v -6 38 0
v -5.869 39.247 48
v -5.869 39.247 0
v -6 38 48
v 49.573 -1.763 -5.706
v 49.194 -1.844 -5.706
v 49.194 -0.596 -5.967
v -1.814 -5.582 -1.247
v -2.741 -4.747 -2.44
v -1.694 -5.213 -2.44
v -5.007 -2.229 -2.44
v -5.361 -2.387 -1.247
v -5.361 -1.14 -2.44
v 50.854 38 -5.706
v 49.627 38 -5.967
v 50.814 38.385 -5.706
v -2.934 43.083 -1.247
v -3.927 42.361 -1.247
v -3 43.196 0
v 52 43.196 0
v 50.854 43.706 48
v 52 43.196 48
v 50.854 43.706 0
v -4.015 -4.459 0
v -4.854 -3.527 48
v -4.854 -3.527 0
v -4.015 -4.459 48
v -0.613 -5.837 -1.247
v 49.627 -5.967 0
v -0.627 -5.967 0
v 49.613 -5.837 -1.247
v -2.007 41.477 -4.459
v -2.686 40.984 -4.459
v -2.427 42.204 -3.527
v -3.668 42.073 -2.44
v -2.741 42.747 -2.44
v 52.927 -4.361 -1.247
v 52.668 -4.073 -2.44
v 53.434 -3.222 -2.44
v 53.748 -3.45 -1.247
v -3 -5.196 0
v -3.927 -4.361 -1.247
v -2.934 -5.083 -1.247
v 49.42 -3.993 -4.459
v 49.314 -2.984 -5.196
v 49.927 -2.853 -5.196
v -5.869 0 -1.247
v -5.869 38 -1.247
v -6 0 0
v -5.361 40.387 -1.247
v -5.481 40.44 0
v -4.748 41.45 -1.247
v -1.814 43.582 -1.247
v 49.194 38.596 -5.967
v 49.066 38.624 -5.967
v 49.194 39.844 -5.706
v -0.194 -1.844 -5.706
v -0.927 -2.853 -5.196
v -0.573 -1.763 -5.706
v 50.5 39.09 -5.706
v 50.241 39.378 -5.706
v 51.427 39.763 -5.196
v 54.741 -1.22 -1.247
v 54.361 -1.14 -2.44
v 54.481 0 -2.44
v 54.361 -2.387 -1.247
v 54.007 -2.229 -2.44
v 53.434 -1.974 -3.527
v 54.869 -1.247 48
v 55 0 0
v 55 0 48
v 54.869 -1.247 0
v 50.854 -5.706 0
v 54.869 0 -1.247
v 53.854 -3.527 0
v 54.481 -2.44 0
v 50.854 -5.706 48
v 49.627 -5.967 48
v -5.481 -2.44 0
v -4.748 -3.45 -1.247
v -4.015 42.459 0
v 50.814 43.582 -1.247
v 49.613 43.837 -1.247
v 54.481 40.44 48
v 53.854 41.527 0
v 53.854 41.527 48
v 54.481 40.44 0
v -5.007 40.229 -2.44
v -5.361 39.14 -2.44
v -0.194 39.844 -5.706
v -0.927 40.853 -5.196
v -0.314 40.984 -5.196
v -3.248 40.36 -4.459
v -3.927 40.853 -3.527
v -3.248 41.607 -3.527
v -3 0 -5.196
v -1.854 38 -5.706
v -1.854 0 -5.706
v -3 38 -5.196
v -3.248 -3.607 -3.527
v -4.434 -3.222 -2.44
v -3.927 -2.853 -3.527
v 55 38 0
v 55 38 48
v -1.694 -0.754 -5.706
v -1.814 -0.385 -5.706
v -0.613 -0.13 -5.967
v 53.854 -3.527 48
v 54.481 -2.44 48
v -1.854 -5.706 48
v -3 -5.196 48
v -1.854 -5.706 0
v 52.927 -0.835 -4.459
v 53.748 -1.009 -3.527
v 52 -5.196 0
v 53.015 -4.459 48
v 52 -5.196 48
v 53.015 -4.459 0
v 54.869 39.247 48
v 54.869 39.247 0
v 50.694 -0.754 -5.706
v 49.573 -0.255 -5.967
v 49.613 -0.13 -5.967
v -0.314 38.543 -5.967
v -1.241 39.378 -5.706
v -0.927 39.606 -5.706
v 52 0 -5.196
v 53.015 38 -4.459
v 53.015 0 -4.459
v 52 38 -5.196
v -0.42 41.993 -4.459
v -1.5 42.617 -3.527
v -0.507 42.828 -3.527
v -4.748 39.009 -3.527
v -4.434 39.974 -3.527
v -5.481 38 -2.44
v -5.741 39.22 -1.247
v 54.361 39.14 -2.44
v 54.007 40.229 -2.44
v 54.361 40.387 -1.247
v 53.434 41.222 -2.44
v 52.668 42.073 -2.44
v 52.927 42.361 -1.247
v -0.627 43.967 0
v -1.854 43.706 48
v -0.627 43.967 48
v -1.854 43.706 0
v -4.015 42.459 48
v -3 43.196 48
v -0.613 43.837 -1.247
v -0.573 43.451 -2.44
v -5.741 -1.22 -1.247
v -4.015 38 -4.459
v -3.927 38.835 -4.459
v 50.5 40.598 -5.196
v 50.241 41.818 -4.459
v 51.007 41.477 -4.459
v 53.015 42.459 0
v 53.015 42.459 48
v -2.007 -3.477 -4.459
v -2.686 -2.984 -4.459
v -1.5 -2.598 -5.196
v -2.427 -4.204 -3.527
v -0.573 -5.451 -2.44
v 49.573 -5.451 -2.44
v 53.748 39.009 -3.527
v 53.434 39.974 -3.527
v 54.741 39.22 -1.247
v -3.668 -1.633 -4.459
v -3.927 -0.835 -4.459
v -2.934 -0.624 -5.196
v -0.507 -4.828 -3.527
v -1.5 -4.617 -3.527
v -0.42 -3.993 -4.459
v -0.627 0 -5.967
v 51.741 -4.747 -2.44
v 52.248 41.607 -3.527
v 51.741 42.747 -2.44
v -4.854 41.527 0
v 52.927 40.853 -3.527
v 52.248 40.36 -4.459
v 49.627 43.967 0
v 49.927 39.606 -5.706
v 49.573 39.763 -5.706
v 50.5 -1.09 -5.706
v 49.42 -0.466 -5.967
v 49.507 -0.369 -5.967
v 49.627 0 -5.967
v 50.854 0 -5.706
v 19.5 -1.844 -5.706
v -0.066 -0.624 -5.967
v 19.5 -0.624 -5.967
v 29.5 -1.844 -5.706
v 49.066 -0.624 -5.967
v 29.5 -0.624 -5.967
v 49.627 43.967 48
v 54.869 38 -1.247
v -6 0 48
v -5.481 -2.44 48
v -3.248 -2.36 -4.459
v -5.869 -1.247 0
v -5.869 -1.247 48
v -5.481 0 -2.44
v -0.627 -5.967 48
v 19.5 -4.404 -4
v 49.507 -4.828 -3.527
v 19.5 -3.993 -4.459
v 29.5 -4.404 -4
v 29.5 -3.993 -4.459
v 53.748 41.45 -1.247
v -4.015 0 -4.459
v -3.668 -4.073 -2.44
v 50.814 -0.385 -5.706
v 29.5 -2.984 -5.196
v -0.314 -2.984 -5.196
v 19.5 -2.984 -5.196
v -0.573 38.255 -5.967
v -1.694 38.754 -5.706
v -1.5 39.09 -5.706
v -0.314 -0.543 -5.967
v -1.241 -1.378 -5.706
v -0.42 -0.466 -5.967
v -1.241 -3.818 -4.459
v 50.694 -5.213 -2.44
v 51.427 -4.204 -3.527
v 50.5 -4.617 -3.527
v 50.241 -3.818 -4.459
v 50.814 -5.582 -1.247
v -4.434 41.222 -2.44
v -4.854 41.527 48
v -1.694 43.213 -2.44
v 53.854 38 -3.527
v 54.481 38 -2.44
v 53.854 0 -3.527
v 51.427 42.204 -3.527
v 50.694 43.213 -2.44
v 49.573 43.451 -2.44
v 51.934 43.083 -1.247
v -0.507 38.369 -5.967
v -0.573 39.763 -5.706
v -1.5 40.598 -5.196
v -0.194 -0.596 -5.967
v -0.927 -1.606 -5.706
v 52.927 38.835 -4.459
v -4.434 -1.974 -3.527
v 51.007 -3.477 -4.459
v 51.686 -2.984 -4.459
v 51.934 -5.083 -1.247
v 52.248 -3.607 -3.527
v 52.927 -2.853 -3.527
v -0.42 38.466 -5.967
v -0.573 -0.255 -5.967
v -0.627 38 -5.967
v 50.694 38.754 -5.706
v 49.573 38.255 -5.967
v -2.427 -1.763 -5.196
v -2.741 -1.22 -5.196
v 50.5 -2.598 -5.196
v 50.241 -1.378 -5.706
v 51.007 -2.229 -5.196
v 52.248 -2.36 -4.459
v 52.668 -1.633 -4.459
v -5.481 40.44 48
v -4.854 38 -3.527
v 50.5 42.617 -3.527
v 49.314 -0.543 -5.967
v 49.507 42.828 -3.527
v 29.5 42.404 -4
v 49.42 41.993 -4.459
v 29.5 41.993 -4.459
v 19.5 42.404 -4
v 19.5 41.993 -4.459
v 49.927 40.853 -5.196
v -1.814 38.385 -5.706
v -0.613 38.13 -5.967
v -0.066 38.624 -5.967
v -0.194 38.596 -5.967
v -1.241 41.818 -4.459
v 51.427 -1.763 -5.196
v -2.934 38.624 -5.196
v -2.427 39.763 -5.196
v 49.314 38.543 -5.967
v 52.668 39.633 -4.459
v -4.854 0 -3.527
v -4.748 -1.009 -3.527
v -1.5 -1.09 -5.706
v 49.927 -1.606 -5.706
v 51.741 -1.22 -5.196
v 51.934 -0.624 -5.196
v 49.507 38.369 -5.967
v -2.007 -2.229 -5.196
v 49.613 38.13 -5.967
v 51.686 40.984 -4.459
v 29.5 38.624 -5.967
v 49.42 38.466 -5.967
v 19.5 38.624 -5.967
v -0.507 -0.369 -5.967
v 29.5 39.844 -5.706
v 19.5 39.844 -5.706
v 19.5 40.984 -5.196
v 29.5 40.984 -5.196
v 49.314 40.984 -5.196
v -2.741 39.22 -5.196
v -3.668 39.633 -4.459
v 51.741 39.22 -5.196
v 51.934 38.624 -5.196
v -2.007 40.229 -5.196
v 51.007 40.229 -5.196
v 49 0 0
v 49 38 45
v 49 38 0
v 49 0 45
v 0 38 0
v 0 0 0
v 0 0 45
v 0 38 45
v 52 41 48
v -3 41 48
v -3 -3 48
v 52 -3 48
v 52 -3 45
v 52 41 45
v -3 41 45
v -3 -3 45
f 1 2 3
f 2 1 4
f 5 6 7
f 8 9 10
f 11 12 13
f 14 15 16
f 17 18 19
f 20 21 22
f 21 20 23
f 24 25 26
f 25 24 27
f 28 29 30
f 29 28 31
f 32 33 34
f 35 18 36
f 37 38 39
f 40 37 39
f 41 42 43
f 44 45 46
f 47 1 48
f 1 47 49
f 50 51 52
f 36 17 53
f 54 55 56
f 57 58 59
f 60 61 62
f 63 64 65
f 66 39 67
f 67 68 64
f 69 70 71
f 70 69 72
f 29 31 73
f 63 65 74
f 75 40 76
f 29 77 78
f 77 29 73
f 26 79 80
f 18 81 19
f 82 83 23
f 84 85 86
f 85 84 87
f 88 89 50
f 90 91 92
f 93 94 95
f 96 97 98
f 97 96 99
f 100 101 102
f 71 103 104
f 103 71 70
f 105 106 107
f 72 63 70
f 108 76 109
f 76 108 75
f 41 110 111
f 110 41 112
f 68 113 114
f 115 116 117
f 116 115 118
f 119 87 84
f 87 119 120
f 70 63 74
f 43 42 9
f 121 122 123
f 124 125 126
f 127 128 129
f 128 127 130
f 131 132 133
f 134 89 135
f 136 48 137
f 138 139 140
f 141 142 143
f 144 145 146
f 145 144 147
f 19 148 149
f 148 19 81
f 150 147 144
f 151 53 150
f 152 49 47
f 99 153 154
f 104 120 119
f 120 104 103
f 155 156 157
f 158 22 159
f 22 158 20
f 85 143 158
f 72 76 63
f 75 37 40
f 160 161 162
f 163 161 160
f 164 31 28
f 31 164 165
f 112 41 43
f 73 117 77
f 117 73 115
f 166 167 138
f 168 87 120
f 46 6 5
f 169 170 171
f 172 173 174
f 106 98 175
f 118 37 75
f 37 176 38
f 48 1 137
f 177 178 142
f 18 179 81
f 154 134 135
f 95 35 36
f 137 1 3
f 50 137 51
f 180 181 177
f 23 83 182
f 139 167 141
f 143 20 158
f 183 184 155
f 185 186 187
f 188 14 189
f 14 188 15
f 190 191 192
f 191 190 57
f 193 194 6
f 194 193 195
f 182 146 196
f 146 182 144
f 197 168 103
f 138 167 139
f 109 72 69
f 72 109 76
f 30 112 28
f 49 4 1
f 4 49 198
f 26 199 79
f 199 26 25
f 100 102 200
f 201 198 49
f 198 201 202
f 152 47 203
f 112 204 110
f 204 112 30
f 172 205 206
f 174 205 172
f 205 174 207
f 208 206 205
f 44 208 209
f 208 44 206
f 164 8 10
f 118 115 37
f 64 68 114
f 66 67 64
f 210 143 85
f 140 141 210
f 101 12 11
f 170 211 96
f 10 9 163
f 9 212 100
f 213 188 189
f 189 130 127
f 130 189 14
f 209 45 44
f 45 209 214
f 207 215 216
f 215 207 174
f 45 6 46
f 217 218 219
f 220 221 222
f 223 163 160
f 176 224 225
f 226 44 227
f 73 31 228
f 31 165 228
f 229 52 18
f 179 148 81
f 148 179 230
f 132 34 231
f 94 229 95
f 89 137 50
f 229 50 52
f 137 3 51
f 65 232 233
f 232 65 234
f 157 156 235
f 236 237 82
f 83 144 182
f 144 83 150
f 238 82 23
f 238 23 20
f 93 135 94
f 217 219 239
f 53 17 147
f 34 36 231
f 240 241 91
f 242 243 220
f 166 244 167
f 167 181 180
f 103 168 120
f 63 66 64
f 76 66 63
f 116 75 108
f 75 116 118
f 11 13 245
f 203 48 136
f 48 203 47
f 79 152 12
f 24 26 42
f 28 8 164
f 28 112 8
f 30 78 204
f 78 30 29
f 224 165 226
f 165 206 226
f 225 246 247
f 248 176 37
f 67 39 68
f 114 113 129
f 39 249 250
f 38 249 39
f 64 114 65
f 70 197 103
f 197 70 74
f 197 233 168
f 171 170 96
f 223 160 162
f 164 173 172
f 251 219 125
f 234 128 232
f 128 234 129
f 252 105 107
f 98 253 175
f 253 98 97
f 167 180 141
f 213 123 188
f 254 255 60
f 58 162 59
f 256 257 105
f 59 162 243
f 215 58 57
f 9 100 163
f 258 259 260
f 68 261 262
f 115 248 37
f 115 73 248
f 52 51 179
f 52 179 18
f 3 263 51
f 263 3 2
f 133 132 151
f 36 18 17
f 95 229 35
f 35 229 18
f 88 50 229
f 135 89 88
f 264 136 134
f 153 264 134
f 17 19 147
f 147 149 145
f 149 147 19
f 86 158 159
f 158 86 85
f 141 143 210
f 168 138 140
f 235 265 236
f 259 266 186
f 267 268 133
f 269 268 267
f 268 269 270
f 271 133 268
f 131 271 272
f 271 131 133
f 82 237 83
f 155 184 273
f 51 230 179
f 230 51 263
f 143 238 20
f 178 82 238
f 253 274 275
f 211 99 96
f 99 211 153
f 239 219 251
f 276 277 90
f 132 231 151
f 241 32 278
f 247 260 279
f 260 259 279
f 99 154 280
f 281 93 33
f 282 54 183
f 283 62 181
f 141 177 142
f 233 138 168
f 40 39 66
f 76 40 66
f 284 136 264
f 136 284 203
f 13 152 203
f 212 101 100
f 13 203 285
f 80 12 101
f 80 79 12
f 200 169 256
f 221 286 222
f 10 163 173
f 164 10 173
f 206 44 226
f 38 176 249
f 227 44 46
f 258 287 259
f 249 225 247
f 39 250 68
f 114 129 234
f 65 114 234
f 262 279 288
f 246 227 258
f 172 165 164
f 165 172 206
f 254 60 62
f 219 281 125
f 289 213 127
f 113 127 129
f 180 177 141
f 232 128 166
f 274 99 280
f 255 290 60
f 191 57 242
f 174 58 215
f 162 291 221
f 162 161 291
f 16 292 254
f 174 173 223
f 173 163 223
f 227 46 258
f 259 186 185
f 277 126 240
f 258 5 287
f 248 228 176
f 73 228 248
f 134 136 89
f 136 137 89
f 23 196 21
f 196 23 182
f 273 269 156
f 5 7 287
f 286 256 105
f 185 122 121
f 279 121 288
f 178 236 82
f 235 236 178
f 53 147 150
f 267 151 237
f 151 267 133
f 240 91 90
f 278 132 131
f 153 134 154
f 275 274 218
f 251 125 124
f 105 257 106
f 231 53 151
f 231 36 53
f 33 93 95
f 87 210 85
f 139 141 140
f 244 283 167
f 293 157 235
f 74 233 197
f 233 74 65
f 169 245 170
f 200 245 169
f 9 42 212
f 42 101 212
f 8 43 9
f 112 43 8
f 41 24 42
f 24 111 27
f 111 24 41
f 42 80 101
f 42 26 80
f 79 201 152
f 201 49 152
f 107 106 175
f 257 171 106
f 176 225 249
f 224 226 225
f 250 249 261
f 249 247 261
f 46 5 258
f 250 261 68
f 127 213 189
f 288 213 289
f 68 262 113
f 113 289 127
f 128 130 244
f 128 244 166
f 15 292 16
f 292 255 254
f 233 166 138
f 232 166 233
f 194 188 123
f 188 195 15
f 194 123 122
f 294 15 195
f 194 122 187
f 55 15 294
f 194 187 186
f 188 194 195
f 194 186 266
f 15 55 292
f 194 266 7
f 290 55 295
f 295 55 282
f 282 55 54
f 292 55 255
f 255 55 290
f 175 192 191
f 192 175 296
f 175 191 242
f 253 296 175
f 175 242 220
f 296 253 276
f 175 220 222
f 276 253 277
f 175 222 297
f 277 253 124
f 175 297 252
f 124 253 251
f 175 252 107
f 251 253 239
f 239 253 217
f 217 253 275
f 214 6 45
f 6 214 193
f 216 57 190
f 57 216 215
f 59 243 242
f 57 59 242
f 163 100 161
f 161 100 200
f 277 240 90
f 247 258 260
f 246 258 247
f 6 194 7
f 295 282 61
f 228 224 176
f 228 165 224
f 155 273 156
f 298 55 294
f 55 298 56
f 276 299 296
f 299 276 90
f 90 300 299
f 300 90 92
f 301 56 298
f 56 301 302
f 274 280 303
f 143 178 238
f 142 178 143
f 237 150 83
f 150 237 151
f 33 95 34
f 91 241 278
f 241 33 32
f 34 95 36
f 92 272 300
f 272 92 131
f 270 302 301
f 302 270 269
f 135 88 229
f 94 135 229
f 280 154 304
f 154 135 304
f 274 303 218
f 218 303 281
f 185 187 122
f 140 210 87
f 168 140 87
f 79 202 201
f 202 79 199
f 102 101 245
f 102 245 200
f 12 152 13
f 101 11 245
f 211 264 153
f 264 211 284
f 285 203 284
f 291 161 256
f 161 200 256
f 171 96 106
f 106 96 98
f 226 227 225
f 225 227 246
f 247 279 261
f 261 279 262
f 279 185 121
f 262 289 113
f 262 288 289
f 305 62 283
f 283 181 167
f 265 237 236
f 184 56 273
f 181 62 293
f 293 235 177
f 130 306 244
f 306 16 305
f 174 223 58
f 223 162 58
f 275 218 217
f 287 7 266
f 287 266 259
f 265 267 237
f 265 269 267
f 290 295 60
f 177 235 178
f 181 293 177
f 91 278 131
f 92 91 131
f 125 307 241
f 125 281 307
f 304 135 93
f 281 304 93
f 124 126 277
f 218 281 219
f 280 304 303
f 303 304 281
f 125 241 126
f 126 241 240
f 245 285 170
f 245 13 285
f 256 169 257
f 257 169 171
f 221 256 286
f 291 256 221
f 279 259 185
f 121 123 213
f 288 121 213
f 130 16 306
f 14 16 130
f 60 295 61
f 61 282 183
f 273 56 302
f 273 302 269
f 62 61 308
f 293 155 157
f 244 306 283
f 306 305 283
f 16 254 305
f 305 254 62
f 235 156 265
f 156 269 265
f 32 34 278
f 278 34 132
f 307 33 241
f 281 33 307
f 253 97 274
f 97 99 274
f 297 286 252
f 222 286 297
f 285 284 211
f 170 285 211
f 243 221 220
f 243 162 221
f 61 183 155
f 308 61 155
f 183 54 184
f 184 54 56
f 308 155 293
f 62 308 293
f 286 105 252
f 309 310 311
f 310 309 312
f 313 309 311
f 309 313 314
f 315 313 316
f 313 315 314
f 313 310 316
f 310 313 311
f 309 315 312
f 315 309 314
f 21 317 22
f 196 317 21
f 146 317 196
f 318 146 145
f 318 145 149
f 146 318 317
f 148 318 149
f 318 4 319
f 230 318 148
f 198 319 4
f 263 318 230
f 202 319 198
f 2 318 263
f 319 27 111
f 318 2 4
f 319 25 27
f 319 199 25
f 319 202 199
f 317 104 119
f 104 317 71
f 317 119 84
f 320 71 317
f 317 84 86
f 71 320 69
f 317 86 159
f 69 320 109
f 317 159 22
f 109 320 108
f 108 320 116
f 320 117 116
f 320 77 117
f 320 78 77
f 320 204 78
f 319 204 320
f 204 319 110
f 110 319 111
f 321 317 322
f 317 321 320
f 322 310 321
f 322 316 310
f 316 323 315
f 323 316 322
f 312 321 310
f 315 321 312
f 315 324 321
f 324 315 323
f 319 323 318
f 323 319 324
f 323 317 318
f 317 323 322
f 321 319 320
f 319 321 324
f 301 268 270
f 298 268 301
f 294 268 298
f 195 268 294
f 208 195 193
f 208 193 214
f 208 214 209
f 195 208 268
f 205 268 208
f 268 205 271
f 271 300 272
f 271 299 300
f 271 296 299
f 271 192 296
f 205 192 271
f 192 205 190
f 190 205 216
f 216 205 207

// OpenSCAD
difference () {
  translate ([49/2, 19, 75/2]) {
    difference () {
      minkowski () {
        cube ([49, 38, 75], center=true);
        sphere ($fn=30, r=6);
      }
      cube ([49, 38, 75], center=true);
    }
  }
  union () {
    translate ([0, 0, 148]) {
      cube ([200, 200, 200], center=true);
    }
    translate ([49/2, 19, 148]) {
      cube ([55, 44, 206], center=true);
    }
  }
  translate ([49/2, 0, -5]) {
    cube ([10, 1000, 2], center=true);
  }
}
